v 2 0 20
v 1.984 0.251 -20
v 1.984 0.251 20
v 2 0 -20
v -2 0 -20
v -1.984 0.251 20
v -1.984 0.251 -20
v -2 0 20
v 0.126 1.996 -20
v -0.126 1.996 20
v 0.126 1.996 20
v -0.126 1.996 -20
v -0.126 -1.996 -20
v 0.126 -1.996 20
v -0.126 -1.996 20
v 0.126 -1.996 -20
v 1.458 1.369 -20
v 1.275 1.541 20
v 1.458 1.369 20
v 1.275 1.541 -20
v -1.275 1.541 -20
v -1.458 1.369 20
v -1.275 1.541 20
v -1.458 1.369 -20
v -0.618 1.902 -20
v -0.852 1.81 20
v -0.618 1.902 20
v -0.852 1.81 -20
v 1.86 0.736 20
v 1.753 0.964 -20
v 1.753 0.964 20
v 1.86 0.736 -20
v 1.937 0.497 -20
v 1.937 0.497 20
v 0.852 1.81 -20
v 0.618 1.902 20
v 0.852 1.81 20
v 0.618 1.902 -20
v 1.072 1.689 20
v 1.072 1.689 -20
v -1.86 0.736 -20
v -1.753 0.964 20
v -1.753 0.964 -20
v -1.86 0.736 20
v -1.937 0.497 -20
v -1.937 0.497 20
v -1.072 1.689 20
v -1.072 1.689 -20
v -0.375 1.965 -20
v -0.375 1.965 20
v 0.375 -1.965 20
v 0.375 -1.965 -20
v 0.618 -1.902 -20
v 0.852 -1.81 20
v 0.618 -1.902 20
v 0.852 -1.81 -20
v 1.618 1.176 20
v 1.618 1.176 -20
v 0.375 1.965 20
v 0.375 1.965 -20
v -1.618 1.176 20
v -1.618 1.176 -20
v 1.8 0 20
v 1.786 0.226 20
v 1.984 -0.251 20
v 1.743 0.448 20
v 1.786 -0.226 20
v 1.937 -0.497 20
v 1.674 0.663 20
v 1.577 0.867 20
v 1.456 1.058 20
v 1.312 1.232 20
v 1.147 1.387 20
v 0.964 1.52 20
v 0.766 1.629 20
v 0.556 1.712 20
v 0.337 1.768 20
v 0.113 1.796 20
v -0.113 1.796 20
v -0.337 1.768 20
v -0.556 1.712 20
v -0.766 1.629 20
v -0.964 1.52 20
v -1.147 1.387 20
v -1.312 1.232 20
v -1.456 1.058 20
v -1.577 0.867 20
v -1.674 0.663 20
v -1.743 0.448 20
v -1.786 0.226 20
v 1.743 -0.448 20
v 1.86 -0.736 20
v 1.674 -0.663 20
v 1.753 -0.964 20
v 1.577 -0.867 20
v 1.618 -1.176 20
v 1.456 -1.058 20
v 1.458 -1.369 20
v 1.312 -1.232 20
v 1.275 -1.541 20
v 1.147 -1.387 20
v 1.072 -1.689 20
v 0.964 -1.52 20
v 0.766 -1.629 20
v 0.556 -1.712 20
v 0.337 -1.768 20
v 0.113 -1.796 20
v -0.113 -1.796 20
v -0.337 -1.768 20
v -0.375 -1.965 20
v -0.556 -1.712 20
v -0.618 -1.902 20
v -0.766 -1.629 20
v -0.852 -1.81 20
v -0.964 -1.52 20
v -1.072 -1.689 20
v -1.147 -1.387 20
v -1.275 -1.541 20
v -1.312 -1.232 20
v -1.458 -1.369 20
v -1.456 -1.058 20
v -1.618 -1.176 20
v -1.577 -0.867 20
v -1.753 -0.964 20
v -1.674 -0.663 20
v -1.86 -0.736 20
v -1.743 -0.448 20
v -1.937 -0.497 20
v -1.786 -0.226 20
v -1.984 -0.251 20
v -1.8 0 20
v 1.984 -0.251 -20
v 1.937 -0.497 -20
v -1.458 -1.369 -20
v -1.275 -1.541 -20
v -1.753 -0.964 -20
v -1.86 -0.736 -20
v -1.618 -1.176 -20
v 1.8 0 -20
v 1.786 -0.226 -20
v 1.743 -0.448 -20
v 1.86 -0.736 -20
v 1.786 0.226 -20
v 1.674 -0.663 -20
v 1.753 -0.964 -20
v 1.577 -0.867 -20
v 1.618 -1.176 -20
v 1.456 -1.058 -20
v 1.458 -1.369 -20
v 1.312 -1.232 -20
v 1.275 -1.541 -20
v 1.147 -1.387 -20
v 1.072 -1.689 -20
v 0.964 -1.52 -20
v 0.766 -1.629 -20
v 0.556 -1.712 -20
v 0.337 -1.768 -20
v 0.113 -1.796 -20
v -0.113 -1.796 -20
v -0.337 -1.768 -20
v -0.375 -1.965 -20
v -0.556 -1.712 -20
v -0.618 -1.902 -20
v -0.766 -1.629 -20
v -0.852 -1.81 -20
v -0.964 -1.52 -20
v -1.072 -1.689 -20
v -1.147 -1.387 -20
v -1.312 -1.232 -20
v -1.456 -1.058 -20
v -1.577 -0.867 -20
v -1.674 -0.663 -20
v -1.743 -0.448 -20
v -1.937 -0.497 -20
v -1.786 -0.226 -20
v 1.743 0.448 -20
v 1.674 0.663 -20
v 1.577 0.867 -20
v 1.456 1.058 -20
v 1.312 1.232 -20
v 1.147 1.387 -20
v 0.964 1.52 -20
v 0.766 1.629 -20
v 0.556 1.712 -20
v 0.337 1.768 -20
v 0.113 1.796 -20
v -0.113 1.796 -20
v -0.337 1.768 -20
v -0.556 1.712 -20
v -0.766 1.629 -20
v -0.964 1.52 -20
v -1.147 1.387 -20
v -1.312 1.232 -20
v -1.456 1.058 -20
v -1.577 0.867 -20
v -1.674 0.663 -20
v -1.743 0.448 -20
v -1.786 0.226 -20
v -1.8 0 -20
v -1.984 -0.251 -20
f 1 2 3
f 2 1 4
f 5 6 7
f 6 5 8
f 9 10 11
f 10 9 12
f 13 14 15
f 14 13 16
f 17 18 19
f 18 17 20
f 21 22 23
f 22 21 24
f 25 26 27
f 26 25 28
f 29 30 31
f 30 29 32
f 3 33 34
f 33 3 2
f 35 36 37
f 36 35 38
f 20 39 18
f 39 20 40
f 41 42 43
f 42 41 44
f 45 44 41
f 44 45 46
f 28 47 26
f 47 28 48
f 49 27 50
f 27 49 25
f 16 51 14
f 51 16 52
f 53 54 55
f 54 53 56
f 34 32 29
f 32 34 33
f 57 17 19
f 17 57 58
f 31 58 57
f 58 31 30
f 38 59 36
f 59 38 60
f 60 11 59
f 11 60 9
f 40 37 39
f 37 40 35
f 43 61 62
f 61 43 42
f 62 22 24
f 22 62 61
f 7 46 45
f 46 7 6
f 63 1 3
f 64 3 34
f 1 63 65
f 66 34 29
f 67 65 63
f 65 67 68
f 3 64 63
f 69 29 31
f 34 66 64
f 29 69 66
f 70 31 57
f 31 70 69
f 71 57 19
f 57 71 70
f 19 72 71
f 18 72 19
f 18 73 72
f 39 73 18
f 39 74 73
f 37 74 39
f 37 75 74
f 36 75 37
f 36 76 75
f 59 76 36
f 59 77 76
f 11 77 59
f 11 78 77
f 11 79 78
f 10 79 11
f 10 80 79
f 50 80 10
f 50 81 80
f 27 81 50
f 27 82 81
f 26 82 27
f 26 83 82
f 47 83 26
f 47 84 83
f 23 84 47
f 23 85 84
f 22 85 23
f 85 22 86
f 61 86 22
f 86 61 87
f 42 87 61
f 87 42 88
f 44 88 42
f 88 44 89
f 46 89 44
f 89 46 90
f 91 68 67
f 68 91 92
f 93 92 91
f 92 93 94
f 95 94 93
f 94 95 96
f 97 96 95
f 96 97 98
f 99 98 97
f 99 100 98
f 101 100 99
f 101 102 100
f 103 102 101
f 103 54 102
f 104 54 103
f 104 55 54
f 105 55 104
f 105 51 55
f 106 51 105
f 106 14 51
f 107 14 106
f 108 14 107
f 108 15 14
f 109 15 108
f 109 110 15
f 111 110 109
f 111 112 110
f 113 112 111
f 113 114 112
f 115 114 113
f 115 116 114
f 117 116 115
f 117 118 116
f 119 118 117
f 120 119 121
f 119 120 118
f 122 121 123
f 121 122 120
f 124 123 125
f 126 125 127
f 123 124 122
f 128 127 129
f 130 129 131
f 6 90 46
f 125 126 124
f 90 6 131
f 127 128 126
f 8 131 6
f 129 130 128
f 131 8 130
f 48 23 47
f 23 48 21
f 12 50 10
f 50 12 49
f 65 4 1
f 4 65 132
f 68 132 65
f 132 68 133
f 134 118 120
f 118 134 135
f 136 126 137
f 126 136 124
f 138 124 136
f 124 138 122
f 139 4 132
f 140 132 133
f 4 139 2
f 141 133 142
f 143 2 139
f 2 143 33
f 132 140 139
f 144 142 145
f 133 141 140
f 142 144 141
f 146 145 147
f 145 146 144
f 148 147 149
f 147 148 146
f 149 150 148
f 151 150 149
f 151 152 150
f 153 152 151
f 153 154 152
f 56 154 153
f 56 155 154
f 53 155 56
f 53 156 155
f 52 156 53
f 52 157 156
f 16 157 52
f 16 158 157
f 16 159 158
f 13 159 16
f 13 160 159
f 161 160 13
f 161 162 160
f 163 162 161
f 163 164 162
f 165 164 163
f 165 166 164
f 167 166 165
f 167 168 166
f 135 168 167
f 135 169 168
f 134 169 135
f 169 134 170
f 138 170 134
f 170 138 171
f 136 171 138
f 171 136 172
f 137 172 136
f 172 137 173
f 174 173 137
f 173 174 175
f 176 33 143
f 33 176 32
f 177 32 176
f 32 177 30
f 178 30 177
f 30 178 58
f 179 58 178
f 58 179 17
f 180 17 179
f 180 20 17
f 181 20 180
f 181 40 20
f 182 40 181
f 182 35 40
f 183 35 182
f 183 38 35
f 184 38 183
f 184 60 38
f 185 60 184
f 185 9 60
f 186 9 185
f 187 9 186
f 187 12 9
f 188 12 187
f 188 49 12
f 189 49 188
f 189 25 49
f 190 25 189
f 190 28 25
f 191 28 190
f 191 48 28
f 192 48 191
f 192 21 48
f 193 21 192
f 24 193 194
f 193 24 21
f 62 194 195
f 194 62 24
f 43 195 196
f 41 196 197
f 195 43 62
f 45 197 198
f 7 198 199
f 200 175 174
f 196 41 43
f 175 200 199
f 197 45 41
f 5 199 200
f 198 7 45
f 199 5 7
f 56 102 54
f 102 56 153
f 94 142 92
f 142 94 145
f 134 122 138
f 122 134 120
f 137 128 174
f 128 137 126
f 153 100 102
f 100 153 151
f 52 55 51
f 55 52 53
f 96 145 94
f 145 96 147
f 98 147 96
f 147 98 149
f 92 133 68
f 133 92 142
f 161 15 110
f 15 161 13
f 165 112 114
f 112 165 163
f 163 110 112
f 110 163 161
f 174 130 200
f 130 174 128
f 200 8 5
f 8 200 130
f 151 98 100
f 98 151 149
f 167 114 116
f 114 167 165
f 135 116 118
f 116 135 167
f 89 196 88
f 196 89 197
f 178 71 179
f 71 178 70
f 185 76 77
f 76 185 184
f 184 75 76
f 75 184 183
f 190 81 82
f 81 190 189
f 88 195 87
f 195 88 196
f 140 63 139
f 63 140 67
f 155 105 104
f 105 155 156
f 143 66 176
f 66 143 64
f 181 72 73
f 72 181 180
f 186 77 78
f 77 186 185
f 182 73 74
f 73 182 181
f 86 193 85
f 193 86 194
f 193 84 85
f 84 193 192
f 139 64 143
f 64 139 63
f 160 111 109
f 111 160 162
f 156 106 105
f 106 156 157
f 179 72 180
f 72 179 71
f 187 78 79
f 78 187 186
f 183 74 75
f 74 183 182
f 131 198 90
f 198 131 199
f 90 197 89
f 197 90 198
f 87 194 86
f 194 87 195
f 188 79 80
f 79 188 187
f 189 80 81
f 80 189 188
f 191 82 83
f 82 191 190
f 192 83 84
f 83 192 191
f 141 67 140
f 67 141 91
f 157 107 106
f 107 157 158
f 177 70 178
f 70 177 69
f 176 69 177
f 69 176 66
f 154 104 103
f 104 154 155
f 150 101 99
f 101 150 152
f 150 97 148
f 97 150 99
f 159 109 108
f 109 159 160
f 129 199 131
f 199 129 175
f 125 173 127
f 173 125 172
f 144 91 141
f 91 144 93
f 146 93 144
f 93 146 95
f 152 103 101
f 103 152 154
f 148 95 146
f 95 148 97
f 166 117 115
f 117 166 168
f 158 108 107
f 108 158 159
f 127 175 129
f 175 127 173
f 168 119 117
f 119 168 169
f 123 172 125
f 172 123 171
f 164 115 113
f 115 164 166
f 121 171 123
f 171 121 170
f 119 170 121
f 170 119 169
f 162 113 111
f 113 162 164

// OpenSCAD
$fn = 50;


difference() {
	union() {
		translate(v = [0, 0, -20.0000000000]) {
			cylinder(h = 40, r = 2.0000000000);
		}
	}
	union() {
		translate(v = [0, 0, -100.0000000000]) {
			cylinder(h = 200, r = 1.8000000000);
		}
	}
}
